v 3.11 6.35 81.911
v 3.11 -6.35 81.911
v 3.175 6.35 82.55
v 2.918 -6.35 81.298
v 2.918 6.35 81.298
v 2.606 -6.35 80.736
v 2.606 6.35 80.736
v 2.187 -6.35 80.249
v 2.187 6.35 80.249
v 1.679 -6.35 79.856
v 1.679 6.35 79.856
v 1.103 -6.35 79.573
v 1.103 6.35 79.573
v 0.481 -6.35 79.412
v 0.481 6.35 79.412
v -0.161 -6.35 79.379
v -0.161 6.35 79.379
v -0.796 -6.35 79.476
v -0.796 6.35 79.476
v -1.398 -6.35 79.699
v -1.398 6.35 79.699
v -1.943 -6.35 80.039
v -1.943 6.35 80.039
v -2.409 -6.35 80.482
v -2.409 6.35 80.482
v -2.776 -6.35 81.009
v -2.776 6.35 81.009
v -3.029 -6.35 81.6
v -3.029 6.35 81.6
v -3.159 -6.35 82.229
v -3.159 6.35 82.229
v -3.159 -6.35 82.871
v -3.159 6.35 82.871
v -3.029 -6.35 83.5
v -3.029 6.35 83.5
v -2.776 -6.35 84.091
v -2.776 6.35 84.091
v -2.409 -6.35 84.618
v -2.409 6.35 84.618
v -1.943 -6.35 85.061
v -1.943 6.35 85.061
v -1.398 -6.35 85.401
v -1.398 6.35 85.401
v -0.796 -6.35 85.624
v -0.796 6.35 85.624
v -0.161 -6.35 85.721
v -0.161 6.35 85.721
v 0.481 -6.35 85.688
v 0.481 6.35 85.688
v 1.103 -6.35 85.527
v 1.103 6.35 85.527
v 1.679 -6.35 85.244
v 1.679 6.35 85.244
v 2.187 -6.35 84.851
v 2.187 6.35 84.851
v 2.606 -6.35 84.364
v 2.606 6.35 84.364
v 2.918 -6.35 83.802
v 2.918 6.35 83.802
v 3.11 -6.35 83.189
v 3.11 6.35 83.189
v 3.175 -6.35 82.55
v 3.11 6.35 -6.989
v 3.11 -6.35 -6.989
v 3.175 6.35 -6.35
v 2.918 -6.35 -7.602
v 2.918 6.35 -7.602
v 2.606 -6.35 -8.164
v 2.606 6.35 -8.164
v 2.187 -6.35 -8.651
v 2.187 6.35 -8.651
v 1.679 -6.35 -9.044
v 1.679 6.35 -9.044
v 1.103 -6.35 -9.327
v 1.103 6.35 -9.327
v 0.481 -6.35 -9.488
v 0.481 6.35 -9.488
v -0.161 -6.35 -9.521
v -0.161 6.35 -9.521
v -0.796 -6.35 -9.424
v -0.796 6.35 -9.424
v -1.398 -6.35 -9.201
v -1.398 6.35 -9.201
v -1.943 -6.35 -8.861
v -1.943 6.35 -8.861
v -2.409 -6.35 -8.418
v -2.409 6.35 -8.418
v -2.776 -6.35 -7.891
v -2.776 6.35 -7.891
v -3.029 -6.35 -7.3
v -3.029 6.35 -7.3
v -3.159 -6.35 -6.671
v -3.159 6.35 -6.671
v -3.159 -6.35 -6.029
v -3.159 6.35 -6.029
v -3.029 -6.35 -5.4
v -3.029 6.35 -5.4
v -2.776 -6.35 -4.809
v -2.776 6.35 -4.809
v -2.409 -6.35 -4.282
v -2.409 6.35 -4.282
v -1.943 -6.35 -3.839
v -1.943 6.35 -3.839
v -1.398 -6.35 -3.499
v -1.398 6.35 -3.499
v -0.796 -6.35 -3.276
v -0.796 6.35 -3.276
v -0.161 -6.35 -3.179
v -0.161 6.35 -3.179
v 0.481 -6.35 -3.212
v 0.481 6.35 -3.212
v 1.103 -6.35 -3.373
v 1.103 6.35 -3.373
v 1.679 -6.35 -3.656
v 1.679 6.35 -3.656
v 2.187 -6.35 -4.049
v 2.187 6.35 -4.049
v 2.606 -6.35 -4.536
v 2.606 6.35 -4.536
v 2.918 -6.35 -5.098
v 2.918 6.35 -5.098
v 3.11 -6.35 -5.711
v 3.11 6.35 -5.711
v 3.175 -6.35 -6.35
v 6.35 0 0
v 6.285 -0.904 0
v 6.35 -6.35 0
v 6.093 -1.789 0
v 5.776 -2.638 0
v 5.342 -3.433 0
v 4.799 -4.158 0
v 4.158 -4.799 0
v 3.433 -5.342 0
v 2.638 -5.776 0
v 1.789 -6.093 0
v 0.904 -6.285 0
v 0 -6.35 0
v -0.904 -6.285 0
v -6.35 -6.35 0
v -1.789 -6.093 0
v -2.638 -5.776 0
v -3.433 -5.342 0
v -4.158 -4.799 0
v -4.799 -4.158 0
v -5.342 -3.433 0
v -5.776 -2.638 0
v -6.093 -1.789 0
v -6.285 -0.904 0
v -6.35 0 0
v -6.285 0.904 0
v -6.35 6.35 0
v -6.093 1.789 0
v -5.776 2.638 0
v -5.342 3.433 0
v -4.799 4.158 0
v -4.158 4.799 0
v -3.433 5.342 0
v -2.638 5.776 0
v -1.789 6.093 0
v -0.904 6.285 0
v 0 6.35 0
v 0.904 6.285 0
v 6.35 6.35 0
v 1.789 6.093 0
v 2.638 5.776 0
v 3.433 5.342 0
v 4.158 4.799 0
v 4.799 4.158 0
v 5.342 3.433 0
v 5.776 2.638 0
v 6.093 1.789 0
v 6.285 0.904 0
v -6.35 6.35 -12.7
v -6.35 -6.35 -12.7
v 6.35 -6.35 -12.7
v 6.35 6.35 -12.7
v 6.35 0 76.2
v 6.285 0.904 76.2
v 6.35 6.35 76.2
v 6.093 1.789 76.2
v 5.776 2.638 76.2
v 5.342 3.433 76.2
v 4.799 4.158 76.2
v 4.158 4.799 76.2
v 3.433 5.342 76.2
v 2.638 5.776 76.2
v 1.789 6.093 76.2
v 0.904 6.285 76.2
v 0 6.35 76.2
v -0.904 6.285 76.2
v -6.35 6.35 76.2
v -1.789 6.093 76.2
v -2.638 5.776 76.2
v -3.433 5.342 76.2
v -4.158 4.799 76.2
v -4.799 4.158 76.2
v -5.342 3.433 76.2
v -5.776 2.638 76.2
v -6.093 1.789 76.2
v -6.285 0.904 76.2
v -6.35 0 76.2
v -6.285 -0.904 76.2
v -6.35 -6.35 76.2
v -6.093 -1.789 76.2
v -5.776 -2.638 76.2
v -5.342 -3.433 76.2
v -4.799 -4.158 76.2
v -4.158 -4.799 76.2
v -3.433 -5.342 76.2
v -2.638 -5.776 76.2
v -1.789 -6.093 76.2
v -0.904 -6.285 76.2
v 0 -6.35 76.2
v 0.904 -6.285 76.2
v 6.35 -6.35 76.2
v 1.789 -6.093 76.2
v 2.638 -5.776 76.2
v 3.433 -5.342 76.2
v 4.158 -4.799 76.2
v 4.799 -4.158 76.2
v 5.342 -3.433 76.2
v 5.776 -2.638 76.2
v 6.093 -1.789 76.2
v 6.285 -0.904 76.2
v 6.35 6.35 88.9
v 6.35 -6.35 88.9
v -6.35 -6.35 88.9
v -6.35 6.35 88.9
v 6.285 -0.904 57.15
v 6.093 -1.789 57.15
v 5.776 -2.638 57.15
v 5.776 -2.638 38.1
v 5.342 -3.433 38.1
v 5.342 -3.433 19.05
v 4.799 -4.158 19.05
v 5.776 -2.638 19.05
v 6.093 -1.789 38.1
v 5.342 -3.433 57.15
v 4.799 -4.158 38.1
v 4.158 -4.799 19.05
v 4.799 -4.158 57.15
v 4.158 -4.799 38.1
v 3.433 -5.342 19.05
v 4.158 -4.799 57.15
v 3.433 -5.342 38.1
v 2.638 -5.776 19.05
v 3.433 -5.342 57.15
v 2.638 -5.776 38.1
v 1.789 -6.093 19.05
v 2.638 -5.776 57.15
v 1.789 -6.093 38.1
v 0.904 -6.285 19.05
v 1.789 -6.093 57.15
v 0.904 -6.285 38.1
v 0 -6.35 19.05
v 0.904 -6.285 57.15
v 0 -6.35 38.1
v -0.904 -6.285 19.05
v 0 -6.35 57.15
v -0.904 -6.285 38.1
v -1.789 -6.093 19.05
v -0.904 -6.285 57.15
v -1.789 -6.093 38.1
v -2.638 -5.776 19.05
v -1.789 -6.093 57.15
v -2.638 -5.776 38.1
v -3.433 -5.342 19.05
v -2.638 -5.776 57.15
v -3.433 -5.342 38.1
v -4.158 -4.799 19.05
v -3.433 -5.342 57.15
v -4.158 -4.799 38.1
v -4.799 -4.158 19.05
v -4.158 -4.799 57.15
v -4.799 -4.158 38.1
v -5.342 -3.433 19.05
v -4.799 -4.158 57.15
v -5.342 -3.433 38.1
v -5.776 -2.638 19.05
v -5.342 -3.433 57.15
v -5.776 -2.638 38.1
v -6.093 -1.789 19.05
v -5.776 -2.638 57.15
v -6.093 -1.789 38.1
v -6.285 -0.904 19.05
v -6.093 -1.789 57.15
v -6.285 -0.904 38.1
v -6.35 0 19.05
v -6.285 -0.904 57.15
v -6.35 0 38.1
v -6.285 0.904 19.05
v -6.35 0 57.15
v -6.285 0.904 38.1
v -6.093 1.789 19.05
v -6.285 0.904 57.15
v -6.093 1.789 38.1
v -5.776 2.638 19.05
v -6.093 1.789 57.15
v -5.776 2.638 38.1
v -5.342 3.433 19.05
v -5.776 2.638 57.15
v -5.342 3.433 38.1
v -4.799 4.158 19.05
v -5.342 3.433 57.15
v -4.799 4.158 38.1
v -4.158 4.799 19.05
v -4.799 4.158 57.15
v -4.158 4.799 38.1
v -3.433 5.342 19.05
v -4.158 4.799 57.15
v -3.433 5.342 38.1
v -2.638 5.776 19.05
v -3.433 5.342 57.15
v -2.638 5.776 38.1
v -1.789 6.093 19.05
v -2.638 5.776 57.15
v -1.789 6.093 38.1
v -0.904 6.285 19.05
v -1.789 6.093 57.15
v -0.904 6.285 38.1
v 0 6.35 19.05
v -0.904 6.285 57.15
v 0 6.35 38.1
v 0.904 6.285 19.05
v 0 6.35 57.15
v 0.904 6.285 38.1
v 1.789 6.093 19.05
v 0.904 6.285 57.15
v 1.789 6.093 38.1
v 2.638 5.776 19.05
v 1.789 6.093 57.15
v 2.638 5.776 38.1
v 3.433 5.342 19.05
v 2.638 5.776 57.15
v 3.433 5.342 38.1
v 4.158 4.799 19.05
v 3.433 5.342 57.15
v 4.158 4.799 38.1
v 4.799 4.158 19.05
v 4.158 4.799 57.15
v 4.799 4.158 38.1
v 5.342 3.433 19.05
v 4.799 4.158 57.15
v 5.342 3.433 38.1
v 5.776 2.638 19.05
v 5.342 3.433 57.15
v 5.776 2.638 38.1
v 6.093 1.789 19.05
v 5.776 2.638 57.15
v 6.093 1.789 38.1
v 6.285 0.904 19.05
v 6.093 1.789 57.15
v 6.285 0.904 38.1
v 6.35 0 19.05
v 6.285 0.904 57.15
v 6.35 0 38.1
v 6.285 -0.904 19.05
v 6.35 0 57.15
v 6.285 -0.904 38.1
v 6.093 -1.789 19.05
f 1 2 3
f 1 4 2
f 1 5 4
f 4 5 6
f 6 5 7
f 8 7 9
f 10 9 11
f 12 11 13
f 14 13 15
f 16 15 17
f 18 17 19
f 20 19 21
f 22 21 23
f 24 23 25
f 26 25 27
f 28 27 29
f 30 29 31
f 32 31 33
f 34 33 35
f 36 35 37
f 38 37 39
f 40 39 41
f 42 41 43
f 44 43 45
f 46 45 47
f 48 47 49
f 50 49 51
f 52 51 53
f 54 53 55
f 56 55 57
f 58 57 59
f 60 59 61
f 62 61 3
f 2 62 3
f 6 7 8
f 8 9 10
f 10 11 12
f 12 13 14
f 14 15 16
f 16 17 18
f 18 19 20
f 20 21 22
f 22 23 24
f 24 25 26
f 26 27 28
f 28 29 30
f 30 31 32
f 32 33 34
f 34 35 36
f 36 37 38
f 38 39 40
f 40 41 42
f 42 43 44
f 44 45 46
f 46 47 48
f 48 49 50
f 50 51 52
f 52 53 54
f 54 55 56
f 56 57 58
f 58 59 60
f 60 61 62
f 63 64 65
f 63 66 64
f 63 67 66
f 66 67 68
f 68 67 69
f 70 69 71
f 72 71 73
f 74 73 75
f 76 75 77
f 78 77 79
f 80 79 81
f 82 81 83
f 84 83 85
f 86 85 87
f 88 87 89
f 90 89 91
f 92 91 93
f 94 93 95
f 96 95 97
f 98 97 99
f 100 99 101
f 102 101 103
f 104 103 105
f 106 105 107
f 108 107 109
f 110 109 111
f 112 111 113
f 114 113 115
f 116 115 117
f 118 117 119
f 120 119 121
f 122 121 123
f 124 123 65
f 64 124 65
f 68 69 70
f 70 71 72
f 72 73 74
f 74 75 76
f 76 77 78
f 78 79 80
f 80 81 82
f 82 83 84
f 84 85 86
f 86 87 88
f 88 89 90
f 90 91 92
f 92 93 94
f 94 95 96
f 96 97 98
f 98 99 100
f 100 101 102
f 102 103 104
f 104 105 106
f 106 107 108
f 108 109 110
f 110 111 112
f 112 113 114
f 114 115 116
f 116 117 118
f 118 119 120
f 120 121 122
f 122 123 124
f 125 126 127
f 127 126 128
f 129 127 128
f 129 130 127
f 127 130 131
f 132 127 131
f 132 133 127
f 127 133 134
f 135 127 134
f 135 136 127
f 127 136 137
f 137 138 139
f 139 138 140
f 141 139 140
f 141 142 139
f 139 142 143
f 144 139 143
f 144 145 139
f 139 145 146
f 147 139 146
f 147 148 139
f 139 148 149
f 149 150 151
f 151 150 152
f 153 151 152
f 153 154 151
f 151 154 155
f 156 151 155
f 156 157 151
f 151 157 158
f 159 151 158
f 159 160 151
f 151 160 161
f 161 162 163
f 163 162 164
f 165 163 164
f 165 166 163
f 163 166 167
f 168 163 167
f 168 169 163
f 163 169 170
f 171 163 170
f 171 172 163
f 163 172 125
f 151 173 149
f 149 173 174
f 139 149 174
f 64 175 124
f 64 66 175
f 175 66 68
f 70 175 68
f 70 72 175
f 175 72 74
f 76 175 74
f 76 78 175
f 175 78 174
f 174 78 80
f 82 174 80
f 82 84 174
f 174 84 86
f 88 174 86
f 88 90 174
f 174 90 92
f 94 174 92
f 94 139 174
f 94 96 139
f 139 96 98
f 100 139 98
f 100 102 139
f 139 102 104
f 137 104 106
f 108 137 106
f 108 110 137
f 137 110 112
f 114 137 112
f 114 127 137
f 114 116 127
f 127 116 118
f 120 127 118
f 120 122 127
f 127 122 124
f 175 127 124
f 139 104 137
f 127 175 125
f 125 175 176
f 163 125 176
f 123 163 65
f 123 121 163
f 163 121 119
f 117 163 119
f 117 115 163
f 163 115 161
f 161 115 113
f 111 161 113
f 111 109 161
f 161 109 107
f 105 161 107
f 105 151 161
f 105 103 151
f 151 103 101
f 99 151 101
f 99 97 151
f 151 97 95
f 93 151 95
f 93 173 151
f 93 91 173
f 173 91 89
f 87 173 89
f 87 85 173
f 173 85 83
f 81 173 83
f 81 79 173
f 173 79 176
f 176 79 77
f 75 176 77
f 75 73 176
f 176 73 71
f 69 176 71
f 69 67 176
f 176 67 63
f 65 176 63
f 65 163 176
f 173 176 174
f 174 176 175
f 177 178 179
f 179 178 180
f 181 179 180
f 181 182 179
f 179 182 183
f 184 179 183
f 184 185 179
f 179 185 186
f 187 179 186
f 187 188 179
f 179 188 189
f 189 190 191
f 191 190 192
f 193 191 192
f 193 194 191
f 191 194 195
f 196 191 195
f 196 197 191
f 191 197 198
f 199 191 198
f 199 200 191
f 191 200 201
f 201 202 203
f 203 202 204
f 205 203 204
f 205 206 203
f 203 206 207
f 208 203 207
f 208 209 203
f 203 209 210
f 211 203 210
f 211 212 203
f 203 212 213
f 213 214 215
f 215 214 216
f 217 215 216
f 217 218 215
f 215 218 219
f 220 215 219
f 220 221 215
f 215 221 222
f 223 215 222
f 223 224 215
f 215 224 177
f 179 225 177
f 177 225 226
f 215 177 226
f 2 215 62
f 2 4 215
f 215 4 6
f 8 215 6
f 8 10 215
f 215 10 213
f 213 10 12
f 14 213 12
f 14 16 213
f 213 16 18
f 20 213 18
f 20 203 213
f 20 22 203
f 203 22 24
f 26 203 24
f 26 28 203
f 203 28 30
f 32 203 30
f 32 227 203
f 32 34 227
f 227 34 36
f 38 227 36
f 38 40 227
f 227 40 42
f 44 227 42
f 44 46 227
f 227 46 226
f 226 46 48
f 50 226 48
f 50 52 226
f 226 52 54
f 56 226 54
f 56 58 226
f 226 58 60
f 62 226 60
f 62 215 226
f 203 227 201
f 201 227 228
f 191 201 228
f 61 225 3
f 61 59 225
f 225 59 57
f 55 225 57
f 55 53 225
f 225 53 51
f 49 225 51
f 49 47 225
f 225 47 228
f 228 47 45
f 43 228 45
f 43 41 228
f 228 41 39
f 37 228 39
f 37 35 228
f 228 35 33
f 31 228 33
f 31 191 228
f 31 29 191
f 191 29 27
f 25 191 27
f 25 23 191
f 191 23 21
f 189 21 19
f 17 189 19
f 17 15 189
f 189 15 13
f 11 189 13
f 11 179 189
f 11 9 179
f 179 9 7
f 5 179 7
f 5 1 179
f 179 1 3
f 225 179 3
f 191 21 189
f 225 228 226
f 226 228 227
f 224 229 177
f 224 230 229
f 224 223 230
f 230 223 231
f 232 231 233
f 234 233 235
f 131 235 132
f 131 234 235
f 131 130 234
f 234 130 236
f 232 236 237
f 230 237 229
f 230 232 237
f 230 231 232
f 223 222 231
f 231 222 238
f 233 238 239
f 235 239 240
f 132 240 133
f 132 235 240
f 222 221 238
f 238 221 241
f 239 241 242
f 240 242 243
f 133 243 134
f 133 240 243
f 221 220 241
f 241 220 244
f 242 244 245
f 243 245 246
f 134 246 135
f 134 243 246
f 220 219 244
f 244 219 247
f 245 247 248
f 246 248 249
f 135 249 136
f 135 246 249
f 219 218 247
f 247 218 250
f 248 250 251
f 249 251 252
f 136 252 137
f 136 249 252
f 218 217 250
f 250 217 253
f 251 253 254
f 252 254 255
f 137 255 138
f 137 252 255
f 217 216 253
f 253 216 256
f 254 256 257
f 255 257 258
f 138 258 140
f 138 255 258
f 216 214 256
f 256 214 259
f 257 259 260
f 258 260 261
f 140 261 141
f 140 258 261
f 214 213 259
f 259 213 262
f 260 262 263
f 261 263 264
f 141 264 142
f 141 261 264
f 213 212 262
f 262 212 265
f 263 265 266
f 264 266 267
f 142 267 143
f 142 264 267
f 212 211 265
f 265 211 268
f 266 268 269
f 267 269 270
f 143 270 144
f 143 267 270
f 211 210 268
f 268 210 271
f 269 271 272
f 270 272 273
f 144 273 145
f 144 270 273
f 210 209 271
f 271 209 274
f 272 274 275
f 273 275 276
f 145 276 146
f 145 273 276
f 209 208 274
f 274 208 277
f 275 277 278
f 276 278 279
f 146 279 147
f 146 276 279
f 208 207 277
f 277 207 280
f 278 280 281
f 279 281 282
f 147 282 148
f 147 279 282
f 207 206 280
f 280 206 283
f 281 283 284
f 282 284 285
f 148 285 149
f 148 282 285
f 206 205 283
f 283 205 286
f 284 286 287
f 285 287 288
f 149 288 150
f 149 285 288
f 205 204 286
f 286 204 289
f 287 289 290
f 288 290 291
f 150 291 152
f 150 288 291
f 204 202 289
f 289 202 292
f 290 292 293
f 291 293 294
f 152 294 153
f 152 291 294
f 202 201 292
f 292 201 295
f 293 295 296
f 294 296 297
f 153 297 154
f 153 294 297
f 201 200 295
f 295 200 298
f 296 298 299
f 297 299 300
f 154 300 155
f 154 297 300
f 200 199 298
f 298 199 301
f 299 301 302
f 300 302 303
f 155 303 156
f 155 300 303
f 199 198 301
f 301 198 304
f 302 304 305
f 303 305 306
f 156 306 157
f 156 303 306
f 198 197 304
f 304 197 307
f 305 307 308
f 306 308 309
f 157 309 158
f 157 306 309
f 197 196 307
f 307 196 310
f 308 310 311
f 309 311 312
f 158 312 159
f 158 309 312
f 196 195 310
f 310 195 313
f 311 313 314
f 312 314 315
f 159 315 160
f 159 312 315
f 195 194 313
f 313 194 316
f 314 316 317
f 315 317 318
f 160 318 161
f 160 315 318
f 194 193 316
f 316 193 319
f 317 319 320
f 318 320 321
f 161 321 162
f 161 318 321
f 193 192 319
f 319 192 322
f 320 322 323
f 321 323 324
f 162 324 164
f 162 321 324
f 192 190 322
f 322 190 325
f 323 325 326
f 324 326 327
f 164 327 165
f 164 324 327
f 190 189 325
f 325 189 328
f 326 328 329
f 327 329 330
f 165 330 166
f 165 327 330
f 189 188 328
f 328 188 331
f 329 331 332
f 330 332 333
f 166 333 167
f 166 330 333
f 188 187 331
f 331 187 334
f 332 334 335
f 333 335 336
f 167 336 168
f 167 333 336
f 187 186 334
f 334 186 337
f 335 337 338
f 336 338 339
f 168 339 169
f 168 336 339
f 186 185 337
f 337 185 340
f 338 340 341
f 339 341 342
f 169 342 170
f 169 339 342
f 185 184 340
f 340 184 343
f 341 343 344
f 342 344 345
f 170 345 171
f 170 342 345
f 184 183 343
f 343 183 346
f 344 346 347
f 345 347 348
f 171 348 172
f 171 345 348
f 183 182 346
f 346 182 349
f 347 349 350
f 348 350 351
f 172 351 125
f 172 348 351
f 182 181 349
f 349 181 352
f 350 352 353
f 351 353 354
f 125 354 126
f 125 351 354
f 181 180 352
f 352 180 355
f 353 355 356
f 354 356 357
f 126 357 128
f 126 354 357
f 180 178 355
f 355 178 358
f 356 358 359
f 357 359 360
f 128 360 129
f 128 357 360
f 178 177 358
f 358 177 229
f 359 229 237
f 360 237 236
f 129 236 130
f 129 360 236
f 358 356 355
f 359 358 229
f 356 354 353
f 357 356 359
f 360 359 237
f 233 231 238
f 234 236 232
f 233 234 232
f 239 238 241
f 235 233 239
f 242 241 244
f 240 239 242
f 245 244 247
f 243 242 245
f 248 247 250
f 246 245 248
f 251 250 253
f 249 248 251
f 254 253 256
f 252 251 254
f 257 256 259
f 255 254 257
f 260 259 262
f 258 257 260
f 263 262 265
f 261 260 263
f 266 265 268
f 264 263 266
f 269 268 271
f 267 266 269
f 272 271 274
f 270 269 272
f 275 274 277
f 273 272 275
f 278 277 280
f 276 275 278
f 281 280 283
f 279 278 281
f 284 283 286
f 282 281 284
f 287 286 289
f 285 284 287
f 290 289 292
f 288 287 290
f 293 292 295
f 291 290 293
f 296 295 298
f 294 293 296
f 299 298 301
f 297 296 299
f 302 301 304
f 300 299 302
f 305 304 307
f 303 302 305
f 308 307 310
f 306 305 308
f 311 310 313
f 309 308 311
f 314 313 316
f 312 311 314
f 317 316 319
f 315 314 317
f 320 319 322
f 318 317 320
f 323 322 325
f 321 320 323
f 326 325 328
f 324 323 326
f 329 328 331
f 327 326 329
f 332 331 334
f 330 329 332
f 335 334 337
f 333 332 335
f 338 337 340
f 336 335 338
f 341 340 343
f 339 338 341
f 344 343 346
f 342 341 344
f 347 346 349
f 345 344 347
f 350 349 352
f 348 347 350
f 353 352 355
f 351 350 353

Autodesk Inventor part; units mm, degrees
ref_plane "YZ Plane" through (0, 0, 0) normal (1, 0, 0) x (0, 1, 0)
ref_plane "XZ Plane" through (0, 0, 0) normal (0, 1, 0) x (-1, 0, 0)
ref_plane "XY Plane" through (0, 0, 0) normal (0, 0, 1) x (1, 0, 0)
sketch "Sketch1" plane through (0, 0, 0) normal (0, 0, 1) x (1, 0, 0)
  circle A0 centre (0, 0) radius 6.35
  dimension "d0" = 12.7
extrude "Extrusion1" add sketch "Sketch1" along normal blind 76.2
sketch "Sketch2" plane through (0, 0, 76.2) normal (0, 0, 1) x (1, 0, 0)
  line L0 (-6.35, 6.35) -> (6.35, 6.35)
  line L1 (6.35, 6.35) -> (6.35, -6.35)
  line L2 (6.35, -6.35) -> (-6.35, -6.35)
  line L3 (-6.35, -6.35) -> (-6.35, 6.35)
extrude "Extrusion2" add sketch "Sketch2" along normal blind 12.7
sketch "Sketch3" plane through (0, 0, 0) normal (0, 0, -1) x (-1, 0, 0)
  line L0 (-6.35, 6.35) -> (6.35, 6.35)
  line L1 (6.35, 6.35) -> (6.35, -6.35)
  line L2 (6.35, -6.35) -> (-6.35, -6.35)
  line L3 (-6.35, -6.35) -> (-6.35, 6.35)
extrude "Extrusion3" add sketch "Sketch3" along normal blind 12.7
sketch "Sketch4" plane through (-6.35, -6.35, 76.2) normal (0, -1, 0) x (1, 0, 0)
  line L0 (12.7, 0) -> (12.7, 12.7) projected
  circle A0 centre (6.35, 6.35) radius 3.175
  circle A1 centre (6.35, -82.55) radius 3.175
  line L1 (12.7, -76.2) -> (12.7, -88.9) projected
  point P0 (6.35, -76.2)
  dimension "d7" = 6.35
  dimension "d8" = 6.35
  dimension "d9" = 6.35
  dimension "d10" = 6.35
  dimension "d11" = 6.35
extrude "Extrusion4" cut sketch "Sketch4" against normal blind 25.4
properties part number "3 inch piston"
